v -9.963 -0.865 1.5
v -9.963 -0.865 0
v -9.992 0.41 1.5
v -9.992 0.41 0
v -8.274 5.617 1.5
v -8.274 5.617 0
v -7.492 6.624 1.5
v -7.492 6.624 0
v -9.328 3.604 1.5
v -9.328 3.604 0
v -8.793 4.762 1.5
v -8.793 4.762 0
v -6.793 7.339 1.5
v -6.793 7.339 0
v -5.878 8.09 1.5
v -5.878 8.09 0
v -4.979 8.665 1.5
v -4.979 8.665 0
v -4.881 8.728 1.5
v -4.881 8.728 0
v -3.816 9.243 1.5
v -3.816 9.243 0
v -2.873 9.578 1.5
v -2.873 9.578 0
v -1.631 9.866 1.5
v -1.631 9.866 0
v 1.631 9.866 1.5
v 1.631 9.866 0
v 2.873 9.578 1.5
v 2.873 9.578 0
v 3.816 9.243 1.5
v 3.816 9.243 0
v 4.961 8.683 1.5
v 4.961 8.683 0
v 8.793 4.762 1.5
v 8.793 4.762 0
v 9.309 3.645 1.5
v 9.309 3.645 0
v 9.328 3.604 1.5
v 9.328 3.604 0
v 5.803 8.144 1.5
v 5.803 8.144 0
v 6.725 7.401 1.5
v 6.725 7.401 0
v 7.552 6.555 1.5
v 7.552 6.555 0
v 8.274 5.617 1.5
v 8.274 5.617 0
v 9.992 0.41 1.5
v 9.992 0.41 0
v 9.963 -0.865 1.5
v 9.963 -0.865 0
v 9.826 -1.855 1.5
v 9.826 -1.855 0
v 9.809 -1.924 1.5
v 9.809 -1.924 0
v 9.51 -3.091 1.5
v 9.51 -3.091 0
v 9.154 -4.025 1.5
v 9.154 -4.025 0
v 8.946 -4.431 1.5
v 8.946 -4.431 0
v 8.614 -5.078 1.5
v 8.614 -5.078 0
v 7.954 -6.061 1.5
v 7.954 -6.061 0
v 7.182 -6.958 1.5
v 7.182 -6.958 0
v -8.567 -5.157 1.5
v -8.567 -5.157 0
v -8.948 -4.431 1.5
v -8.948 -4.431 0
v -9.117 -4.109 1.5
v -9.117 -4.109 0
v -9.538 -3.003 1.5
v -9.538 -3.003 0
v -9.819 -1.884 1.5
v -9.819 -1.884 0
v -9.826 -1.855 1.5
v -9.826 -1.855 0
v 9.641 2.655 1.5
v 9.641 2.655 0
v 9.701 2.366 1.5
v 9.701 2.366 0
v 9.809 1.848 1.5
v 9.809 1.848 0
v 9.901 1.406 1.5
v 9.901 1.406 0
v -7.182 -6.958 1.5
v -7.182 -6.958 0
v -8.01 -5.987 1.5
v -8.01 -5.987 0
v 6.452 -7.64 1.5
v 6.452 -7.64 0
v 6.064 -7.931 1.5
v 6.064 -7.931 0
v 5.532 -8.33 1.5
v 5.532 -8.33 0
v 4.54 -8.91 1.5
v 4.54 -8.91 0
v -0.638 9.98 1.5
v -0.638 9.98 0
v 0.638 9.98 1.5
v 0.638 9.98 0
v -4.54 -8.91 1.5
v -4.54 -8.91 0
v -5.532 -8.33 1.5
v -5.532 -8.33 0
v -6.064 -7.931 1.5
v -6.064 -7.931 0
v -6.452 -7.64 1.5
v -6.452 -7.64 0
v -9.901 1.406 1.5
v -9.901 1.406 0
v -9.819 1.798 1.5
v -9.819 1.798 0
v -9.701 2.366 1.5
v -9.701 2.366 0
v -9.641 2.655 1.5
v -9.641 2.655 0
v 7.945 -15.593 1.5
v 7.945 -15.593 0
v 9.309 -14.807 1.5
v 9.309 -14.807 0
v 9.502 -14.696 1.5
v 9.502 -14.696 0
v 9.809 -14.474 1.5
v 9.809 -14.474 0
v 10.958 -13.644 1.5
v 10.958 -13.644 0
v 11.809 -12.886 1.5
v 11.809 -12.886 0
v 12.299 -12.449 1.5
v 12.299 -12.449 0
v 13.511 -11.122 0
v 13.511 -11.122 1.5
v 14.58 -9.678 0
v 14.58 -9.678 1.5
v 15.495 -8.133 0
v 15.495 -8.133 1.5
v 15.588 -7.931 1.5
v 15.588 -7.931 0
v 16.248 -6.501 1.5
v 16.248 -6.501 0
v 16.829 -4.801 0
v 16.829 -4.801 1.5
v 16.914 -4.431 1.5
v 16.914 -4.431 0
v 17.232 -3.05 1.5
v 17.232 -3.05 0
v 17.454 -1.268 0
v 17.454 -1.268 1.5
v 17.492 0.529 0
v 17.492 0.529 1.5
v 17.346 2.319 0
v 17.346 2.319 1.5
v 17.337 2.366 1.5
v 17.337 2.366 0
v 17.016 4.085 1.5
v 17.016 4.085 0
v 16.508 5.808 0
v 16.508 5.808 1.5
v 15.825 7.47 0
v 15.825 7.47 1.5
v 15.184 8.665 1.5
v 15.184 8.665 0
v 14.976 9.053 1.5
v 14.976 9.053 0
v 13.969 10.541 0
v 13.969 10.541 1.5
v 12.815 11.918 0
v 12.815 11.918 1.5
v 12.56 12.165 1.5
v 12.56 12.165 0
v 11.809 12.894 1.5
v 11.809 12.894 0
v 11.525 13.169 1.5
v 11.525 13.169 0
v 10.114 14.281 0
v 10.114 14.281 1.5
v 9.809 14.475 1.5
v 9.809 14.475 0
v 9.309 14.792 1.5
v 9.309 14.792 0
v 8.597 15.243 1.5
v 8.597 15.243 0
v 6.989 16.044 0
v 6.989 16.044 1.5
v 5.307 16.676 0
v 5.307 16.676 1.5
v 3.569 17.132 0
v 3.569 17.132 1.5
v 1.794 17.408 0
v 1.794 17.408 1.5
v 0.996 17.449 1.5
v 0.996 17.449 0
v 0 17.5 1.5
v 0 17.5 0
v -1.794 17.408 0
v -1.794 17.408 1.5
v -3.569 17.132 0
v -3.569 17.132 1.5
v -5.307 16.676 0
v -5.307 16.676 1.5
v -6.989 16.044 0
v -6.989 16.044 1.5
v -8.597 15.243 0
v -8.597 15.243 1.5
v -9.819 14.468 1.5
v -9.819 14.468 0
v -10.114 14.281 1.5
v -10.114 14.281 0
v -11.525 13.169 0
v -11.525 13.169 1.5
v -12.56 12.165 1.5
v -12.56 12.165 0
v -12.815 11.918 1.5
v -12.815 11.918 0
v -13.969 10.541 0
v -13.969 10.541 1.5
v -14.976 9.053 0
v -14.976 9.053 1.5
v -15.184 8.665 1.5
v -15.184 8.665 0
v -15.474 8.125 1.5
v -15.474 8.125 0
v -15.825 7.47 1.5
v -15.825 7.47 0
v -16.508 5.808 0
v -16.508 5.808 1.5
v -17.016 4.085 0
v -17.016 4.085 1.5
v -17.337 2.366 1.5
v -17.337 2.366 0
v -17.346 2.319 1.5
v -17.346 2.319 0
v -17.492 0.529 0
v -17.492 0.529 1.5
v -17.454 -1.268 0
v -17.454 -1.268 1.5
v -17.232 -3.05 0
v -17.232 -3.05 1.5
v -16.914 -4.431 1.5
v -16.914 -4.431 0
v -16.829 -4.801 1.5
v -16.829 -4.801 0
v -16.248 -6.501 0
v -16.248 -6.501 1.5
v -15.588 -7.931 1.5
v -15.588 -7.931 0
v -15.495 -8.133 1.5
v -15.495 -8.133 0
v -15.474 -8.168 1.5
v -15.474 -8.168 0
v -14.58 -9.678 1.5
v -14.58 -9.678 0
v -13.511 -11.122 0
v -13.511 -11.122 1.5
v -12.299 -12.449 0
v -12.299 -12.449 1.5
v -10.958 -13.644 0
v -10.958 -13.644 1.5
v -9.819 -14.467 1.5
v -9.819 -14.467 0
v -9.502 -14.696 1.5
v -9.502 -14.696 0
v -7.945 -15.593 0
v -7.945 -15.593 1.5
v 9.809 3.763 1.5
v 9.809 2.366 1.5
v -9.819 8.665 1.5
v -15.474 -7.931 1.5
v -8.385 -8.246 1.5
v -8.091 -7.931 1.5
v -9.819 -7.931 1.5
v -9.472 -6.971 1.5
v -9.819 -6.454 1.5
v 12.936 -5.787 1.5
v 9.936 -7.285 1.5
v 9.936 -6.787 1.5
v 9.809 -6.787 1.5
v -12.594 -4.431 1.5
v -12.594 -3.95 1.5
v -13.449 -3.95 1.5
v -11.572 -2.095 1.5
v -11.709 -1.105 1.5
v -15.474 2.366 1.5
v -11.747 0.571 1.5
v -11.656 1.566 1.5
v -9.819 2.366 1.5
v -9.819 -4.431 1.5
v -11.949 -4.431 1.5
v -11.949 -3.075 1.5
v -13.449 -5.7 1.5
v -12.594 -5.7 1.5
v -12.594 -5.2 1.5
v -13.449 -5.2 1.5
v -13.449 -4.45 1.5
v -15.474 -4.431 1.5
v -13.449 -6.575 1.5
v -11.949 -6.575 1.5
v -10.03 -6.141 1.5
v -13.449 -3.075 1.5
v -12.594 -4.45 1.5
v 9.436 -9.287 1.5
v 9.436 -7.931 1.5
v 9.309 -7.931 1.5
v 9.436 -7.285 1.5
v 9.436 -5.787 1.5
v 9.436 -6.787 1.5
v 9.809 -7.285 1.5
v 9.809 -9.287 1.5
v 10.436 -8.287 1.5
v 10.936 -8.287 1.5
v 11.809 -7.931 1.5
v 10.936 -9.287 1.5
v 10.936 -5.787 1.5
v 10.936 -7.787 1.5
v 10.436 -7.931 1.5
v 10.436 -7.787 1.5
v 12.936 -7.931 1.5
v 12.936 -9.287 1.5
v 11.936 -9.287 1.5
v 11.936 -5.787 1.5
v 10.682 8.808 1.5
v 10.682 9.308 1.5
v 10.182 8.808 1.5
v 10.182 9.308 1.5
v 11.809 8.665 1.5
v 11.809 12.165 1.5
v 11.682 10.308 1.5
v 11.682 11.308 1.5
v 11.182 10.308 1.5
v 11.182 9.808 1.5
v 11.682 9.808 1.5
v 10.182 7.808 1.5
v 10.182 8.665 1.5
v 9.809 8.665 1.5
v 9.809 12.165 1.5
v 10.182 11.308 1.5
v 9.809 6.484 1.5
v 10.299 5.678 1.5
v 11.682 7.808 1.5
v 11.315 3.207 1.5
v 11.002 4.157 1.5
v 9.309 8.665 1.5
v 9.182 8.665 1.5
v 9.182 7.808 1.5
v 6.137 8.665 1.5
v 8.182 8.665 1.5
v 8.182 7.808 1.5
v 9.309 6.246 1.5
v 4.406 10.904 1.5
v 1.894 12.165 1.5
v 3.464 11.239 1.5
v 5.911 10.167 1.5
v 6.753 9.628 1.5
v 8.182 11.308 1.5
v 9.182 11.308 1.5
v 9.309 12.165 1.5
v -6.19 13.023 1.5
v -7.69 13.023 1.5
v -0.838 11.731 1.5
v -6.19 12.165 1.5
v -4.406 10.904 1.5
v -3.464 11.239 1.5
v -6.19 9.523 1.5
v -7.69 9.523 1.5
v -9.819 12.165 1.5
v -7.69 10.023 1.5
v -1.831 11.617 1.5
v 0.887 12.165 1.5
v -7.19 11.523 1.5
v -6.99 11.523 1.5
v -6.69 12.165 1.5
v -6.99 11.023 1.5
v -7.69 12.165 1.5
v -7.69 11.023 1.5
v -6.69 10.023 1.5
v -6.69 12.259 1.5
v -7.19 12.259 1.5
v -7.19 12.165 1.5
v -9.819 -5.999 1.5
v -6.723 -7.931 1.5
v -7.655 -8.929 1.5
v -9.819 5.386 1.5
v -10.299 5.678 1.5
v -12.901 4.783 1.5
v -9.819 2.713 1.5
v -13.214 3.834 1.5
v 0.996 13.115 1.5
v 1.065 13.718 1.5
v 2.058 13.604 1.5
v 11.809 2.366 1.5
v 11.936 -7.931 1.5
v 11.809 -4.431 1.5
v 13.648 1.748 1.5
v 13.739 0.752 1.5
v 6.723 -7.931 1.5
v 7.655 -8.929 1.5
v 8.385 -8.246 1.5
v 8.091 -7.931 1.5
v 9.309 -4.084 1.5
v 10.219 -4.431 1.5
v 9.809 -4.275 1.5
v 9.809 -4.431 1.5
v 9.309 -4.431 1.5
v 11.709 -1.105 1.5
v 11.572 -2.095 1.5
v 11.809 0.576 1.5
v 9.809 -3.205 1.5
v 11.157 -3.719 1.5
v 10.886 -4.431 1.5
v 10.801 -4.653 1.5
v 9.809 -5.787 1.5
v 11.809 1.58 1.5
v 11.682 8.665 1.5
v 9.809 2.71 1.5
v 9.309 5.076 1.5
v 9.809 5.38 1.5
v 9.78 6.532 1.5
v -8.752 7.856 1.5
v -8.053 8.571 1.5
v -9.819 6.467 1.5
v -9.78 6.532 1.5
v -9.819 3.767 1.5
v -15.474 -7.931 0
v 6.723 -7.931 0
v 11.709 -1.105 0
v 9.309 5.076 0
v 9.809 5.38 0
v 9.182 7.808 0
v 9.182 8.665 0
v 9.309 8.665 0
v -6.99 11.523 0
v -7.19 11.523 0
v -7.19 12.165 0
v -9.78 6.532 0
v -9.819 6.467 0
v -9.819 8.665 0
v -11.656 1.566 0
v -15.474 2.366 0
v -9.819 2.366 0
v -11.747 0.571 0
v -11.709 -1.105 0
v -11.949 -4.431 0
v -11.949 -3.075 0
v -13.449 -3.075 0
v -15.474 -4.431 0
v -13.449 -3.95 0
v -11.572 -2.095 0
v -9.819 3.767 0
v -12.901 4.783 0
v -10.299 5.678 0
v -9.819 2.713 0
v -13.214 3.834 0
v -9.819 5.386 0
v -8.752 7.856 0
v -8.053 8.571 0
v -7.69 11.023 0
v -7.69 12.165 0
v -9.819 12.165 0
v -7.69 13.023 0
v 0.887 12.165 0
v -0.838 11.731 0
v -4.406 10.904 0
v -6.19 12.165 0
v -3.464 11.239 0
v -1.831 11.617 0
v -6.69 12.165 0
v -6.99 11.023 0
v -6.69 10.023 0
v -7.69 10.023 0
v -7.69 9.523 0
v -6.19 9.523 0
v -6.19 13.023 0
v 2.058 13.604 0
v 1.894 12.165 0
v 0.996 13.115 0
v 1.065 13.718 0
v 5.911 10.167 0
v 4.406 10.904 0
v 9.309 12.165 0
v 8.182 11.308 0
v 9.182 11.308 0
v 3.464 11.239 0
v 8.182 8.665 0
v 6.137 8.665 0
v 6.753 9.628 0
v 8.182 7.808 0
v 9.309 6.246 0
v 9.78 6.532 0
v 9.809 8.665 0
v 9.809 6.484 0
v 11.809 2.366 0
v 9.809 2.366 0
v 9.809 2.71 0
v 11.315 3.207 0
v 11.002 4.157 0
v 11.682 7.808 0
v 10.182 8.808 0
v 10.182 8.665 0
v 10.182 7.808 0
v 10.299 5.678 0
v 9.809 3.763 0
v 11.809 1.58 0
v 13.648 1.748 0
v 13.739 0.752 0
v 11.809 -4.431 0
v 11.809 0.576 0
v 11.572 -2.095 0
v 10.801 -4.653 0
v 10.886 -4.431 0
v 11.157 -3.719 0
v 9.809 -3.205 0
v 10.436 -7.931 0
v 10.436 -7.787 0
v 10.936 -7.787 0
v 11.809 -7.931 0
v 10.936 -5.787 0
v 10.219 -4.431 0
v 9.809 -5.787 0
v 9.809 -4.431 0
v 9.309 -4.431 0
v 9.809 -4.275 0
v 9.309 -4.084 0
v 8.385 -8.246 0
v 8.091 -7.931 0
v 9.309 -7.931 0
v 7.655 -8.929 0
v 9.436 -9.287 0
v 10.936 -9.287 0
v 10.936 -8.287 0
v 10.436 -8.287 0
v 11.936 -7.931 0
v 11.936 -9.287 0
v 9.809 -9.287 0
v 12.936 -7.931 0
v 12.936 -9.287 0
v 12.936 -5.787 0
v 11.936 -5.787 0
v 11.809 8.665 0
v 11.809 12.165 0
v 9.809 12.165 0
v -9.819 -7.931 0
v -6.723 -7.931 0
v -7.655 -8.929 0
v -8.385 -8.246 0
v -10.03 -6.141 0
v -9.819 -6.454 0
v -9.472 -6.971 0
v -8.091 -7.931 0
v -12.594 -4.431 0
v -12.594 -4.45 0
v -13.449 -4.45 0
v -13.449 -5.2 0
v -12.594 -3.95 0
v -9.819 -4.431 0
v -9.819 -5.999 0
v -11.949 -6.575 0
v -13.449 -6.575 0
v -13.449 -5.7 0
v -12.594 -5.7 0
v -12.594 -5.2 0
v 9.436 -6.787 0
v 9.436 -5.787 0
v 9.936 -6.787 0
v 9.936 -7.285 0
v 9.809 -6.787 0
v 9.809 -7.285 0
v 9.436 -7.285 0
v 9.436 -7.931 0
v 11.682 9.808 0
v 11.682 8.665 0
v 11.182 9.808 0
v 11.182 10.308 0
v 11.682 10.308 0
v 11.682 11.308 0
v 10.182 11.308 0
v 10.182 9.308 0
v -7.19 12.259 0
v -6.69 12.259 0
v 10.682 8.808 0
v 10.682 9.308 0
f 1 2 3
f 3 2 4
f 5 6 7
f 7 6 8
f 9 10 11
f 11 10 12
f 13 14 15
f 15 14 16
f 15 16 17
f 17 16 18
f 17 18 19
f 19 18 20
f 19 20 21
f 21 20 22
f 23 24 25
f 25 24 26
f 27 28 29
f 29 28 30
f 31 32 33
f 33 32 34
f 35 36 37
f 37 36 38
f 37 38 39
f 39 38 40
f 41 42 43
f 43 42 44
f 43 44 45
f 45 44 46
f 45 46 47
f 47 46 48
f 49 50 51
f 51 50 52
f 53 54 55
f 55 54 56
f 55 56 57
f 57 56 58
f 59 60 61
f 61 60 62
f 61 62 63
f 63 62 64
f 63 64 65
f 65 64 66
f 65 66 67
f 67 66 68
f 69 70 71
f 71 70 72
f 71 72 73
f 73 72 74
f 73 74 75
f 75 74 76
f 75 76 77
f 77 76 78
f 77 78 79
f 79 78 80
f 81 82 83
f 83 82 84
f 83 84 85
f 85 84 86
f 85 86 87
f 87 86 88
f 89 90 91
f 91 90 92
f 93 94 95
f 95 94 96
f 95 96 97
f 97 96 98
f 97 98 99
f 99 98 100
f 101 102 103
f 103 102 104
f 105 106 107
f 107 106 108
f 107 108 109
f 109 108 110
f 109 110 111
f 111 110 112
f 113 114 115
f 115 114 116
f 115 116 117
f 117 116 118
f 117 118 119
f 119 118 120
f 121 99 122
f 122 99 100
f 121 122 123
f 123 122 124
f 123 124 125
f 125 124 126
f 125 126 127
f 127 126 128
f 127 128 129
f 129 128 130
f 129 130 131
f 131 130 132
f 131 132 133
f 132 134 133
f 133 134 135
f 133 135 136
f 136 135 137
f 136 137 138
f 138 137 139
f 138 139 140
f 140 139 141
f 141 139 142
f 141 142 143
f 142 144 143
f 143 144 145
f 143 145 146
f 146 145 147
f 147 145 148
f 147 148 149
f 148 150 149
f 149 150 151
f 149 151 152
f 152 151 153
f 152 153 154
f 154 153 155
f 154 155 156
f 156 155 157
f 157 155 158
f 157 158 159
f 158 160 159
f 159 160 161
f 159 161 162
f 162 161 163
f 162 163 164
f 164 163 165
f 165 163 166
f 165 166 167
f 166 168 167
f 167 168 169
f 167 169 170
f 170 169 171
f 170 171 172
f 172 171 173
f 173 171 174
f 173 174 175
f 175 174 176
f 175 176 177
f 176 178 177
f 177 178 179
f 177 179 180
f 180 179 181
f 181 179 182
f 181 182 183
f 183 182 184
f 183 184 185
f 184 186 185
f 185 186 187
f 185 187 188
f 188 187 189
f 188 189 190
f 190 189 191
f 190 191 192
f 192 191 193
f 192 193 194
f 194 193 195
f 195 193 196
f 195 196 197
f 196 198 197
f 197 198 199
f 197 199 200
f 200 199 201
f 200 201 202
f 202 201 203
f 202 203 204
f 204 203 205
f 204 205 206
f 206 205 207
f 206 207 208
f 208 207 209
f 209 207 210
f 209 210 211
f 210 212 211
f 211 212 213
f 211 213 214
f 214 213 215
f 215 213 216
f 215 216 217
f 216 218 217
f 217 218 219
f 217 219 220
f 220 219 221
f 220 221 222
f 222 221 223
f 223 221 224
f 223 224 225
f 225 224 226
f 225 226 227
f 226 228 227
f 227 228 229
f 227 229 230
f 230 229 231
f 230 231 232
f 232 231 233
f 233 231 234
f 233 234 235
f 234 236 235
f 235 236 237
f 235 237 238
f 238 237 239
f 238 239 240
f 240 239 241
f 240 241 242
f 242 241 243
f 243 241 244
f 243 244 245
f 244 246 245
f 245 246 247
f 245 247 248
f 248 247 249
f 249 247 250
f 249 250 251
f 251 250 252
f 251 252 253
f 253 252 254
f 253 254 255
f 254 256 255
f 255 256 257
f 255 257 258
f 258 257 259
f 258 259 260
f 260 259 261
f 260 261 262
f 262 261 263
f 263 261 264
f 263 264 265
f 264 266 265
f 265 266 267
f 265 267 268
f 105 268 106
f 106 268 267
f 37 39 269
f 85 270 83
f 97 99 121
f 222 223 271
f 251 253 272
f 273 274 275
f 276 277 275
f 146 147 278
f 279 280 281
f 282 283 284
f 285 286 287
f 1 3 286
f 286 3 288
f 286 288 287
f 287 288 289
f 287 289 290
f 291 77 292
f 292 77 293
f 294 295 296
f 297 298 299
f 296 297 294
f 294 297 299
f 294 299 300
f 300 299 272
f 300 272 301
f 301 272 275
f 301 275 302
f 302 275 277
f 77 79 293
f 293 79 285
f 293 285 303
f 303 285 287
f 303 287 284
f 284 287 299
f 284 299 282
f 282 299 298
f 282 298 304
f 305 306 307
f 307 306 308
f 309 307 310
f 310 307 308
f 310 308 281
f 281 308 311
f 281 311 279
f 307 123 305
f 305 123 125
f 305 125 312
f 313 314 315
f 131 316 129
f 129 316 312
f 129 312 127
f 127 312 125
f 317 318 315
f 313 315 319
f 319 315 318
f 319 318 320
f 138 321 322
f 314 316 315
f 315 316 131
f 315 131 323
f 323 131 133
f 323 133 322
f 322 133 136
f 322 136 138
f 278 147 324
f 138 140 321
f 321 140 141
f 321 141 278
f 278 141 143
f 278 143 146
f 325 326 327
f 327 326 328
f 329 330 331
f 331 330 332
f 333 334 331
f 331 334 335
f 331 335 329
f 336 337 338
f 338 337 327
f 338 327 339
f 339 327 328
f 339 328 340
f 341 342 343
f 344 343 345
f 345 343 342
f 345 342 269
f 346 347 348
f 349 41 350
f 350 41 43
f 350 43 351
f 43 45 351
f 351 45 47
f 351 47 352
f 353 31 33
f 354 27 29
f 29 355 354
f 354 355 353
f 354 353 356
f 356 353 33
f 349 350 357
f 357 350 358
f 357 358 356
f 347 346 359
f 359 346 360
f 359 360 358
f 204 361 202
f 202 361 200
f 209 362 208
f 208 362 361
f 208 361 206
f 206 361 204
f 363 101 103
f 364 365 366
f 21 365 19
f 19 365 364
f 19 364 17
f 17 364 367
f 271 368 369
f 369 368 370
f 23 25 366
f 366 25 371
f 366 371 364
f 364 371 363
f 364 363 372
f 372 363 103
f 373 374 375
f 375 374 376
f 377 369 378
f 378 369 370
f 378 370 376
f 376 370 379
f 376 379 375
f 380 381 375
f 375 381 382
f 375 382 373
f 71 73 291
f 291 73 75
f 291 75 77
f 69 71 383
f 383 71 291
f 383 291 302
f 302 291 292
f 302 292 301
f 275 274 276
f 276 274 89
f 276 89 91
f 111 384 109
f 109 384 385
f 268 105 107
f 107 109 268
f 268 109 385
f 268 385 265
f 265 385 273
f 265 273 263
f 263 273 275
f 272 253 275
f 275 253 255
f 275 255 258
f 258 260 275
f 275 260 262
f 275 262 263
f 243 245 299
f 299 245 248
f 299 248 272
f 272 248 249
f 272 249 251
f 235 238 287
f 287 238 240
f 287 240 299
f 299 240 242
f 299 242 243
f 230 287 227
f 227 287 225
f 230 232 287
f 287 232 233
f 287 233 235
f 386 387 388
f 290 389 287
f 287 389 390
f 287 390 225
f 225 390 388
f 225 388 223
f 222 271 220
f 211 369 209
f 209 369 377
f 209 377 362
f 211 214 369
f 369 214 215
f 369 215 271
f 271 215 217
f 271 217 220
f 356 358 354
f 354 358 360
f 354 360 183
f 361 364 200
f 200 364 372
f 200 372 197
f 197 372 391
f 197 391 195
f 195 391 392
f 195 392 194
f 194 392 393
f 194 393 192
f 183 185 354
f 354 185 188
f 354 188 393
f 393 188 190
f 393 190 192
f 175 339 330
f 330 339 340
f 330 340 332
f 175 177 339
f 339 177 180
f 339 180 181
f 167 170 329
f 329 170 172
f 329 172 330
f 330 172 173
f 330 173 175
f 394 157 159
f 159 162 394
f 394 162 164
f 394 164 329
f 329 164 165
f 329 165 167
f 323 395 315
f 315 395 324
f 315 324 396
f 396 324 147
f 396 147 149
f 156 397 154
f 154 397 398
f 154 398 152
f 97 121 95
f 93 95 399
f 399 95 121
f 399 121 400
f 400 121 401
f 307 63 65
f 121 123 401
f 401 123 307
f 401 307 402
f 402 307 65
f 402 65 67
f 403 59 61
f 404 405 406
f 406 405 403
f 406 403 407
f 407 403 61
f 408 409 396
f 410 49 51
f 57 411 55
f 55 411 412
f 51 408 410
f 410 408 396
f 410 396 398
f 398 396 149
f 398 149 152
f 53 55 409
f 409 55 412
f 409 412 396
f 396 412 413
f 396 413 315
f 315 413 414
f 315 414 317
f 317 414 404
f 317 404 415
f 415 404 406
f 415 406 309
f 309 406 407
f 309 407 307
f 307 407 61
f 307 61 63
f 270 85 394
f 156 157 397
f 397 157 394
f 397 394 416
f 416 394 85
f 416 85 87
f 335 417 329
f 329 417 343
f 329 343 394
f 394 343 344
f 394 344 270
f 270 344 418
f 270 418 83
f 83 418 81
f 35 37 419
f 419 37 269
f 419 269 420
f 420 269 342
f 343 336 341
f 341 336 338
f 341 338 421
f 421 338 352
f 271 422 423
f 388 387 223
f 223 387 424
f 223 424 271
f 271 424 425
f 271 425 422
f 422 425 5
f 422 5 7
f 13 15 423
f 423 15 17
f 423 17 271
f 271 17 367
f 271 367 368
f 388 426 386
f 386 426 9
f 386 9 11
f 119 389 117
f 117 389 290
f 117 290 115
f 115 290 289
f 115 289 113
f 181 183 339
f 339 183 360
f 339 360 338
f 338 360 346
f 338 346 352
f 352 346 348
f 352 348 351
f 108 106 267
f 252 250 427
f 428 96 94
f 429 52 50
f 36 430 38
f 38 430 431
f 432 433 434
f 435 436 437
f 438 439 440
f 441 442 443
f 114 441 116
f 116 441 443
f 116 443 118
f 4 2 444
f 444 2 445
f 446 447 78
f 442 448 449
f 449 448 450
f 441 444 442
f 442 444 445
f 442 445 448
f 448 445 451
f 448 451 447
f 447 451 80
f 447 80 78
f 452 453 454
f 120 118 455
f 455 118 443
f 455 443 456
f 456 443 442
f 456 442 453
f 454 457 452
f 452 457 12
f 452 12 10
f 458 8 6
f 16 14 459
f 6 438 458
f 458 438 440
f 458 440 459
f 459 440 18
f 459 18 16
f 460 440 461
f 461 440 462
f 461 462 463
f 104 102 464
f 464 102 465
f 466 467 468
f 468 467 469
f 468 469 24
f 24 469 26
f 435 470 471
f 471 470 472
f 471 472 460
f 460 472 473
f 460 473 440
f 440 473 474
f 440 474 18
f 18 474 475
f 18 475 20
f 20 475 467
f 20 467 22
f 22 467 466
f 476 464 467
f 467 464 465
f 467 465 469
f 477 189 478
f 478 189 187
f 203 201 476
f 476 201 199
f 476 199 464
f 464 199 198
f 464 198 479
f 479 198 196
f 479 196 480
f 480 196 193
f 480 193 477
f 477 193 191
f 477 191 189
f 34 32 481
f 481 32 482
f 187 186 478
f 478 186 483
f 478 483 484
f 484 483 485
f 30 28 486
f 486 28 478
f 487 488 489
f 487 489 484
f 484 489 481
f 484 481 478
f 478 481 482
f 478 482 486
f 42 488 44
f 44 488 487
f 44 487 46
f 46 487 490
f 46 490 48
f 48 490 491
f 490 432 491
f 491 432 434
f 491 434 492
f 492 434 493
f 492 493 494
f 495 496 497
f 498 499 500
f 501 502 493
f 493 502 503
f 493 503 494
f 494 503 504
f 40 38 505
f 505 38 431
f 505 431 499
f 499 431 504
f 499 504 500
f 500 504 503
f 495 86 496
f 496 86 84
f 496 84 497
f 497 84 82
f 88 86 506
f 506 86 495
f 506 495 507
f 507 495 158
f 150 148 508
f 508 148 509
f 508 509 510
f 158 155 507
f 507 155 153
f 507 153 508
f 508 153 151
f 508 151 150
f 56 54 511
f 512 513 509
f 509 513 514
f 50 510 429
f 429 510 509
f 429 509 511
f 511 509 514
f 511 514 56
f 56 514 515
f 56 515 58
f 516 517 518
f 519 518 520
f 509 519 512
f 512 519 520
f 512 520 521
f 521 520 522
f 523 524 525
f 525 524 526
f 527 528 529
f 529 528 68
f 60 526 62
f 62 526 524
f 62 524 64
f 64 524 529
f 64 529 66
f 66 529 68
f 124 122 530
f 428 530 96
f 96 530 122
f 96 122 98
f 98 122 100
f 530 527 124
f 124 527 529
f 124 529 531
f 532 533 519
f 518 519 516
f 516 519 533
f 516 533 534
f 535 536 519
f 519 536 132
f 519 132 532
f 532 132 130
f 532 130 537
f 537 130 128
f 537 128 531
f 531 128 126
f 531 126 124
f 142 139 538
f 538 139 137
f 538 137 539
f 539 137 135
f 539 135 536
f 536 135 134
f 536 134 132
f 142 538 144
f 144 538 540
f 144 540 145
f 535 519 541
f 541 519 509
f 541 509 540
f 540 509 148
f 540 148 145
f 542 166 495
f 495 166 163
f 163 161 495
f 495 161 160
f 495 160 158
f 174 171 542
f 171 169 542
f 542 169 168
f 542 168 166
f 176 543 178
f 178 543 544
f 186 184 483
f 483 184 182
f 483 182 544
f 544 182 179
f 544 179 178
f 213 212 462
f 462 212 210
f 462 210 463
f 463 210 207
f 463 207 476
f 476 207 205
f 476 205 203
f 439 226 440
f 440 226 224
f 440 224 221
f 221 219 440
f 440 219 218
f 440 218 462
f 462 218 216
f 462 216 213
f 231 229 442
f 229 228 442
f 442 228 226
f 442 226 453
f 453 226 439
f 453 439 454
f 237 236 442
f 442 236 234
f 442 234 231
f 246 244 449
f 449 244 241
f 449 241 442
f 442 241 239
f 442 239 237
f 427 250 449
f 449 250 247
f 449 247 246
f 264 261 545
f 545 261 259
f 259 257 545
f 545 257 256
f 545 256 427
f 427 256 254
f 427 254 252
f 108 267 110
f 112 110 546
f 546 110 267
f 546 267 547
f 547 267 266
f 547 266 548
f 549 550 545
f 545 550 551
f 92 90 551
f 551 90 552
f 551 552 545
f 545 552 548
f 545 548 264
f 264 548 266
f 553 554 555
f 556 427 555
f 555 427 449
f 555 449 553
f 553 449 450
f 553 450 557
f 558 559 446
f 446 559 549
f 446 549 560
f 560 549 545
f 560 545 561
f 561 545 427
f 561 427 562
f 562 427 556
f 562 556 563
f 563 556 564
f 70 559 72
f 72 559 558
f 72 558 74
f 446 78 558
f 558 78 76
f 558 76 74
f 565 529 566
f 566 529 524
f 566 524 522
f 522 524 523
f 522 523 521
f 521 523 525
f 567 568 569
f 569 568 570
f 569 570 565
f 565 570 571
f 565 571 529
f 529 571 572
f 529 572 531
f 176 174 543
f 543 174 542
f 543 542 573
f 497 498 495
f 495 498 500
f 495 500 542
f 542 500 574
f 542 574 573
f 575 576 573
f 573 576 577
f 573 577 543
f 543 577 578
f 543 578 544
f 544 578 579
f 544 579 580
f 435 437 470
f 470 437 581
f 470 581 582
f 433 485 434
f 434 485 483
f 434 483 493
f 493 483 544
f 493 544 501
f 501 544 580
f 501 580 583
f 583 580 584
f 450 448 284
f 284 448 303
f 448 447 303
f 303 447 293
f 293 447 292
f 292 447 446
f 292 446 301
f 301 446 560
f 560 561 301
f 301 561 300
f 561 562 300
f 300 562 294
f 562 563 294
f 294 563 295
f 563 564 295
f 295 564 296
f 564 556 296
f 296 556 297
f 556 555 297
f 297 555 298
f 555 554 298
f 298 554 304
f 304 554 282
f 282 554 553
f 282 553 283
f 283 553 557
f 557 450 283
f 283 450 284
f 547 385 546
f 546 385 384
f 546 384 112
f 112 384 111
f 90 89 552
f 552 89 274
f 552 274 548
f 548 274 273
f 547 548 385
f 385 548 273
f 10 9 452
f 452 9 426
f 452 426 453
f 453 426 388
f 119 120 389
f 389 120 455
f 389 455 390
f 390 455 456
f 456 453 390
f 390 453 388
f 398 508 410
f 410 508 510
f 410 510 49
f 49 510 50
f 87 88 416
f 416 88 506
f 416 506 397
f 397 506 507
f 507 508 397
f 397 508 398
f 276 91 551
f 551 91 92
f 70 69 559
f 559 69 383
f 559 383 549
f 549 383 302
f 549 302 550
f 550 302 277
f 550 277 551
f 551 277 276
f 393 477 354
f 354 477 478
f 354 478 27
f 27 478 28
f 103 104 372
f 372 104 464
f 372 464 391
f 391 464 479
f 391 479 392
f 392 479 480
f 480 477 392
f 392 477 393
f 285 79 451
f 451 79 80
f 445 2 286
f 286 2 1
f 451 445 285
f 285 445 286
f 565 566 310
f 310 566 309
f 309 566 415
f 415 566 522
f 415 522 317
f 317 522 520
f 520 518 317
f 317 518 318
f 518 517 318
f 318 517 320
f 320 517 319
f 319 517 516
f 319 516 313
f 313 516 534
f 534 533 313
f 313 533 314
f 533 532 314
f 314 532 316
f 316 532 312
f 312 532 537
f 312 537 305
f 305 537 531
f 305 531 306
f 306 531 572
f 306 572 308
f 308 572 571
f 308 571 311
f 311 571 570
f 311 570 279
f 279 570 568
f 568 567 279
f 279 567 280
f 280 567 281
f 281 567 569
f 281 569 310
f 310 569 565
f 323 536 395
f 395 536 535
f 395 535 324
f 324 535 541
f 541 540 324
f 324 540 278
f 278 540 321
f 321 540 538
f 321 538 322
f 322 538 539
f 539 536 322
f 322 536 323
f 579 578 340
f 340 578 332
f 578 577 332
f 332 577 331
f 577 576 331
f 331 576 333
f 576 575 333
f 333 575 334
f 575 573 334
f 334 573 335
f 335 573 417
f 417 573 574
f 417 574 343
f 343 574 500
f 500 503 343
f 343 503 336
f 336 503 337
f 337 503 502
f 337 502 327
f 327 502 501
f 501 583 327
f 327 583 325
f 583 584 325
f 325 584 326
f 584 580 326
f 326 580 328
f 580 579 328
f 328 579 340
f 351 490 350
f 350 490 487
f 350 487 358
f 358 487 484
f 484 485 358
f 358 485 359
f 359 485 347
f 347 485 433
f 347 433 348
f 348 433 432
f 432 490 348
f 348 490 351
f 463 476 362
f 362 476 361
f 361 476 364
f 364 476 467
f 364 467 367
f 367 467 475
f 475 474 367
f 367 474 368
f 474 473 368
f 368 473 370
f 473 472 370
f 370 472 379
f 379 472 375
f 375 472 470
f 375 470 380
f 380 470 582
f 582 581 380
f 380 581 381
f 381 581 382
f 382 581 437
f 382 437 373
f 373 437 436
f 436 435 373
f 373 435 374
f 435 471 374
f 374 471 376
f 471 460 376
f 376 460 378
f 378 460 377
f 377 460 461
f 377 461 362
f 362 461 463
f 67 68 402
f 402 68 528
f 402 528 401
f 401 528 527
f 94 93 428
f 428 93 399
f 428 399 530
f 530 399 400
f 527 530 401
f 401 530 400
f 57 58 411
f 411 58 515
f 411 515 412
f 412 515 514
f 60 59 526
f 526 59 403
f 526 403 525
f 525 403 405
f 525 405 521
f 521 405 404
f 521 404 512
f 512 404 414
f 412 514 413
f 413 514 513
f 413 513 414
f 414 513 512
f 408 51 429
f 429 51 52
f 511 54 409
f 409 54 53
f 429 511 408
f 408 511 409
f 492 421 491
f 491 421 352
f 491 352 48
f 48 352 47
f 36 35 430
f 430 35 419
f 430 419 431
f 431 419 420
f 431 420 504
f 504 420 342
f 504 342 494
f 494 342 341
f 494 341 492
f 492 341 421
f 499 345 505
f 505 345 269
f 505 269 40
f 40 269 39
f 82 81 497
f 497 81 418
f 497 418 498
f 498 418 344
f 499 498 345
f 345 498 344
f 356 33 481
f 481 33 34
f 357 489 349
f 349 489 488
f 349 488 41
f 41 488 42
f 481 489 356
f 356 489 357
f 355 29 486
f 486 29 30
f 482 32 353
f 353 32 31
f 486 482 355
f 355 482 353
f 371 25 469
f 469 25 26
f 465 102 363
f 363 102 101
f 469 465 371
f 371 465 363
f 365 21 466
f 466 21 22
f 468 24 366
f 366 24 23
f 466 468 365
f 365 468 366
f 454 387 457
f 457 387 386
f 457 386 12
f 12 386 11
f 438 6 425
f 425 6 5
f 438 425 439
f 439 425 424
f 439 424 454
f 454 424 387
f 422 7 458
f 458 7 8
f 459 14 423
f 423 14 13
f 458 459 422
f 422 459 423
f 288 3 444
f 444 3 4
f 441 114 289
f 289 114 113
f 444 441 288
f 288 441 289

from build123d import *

# Parameters (mm, degrees)
BOSS_EXTRUDE1_DEPTH = 1.5
SKETCH3_W           = 1
SKETCH3_H           = 3.5
CUT_EXTRUDE2_DEPTH  = 1.5


with BuildPart() as part:
    # Sketch1 → Boss-Extrude1 (new body)
    with BuildSketch(Plane.XY):
        with BuildLine():
            Line((-4.539904997, -8.910065242), (-7.944833745, -15.592614173))
            ThreePointArc((-7.944833745, -15.592614173), (0, 17.5), (7.944833745, -15.592614173))
            Line((7.944833745, -15.592614173), (4.539904997, -8.910065242))
            ThreePointArc((4.539904997, -8.910065242), (0, 10), (-4.539904997, -8.910065242))
        make_face()
    extrude(amount=BOSS_EXTRUDE1_DEPTH)

    # Sketch3 → Cut-Extrude2 (cut)
    with BuildSketch(Plane.XY.offset(1.5)):
        Polygon((-13.448841764, -3.075278615), (-11.948841764, -3.075278615), (-11.948841764, -6.575278615), (-13.448841764, -6.575278615), (-13.448841764, -5.700278615), (-12.594138864, -5.700278615), (-12.594138864, -5.200278615), (-13.448841764, -5.200278615), (-13.448841764, -4.450278615), (-12.594138864, -4.450278615), (-12.594138864, -3.950278615), (-13.448841764, -3.950278615), align=None)
        Polygon((-6.189760479, 13.023085903), (-6.189760479, 9.523085903), (-7.689760479, 9.523085903), (-7.689760479, 10.023085903), (-6.689760479, 10.023085903), (-6.689760479, 10.523085903), (-6.689760479, 12.259445402), (-7.189760479, 12.259445402), (-7.189760479, 11.523085903), (-6.989760479, 11.523085903), (-6.989760479, 11.023085903), (-7.189760479, 11.023085903), (-7.689760479, 11.023085903), (-7.689760479, 13.023085903), align=None)
        with Locations((8.681961549, 9.557519934)):
            Rectangle(SKETCH3_W, SKETCH3_H)
        Polygon((10.181961549, 11.307519934), (10.181961549, 9.307519934), (10.681961549, 9.307519934), (10.681961549, 8.807519934), (10.181961549, 8.807519934), (10.181961549, 7.807519934), (11.681961549, 7.807519934), (11.681961549, 9.807519934), (11.181961549, 9.807519934), (11.181961549, 10.307519934), (11.681961549, 10.307519934), (11.681961549, 11.307519934), align=None)
        with Locations((12.435856983, -7.53707486)):
            Rectangle(SKETCH3_W, SKETCH3_H)
        Polygon((9.435856983, -5.78707486), (10.935856983, -5.78707486), (10.935856983, -7.78707486), (10.435856983, -7.78707486), (10.435856983, -8.28707486), (10.935856983, -8.28707486), (10.935856983, -9.28707486), (9.435856983, -9.28707486), (9.435856983, -7.285099387), (9.935856983, -7.285099387), (9.935856983, -6.78707486), (9.435856983, -6.78707486), align=None)
        Polygon((-9.472185157, -6.970667712), (-10.030119205, -6.14078242), (-7.540463329, -4.466980276), (-6.982529281, -5.296865568), align=None)
        Polygon((-5.606922021, -6.736091259), (-6.337757985, -6.053538116), (-8.385417415, -8.246046009), (-7.654581451, -8.928599152), align=None)
        Polygon((-11.001594478, 4.156611473), (-12.900873876, 4.783299409), (-13.214217844, 3.83365971), (-11.314938446, 3.206971774), (-8.466019349, 2.26693987), (-8.152675381, 3.216579569), align=None)
        Polygon((1.831331602, 11.617173691), (2.058491975, 13.604231356), (1.064963142, 13.717811542), (0.83780277, 11.730753877), (0.497062212, 8.750167379), (1.490591044, 8.636587193), align=None)
        Polygon((-11.572476541, -2.0953011), (-11.70864319, -1.104615154), (-8.736585352, -0.696115207), (-8.600418703, -1.686801153), align=None)
        Polygon((-11.746785331, 0.570556211), (-11.655850469, 1.566413053), (-8.668279941, 1.293608466), (-8.759214803, 0.297751624), align=None)
        Polygon((-10.299219978, 5.677901711), (-9.779636028, 6.532321115), (-7.216377815, 4.973569265), (-7.735961765, 4.119149861), align=None)
        Polygon((-8.752042864, 7.855841502), (-8.053030417, 8.570951003), (-5.907701913, 6.473913662), (-6.60671436, 5.758804161), align=None)
        Polygon((11.746785331, 0.570556211), (13.738499016, 0.752425935), (13.647564154, 1.748282778), (11.655850469, 1.566413053), (8.668279941, 1.293608466), (8.759214803, 0.297751624), align=None)
        Polygon((-4.405965904, 10.904126029), (-3.463704982, 11.239005641), (-2.459066145, 8.412222875), (-3.401327068, 8.077343262), align=None)
        Polygon((-1.831331602, 11.617173691), (-0.83780277, 11.730753877), (-0.497062212, 8.750167379), (-1.490591044, 8.636587193), align=None)
        Polygon((3.463704982, 11.239005641), (4.405965904, 10.904126029), (3.401327068, 8.077343262), (2.459066145, 8.412222875), align=None)
        Polygon((5.910873662, 10.167304094), (6.753244282, 9.628405458), (5.136548374, 7.101293601), (4.294177755, 7.640192237), align=None)
        Polygon((9.779636028, 6.532321115), (10.299219978, 5.677901711), (7.735961765, 4.119149861), (7.216377815, 4.973569265), align=None)
        Polygon((11.001594478, 4.156611473), (11.314938446, 3.206971774), (8.466019349, 2.26693987), (8.152675381, 3.216579569), align=None)
        Polygon((11.70864319, -1.104615154), (11.572476541, -2.0953011), (8.600418703, -1.686801153), (8.736585352, -0.696115207), align=None)
        Polygon((11.157248442, -3.718643193), (10.801006731, -4.65303703), (7.997825219, -3.584311895), (8.354066931, -2.649918058), align=None)
        Polygon((8.385417415, -8.246046009), (7.654581451, -8.928599152), (5.606922021, -6.736091259), (6.337757985, -6.053538116), align=None)
    extrude(amount=-CUT_EXTRUDE2_DEPTH, mode=Mode.SUBTRACT)


solid = part.part
